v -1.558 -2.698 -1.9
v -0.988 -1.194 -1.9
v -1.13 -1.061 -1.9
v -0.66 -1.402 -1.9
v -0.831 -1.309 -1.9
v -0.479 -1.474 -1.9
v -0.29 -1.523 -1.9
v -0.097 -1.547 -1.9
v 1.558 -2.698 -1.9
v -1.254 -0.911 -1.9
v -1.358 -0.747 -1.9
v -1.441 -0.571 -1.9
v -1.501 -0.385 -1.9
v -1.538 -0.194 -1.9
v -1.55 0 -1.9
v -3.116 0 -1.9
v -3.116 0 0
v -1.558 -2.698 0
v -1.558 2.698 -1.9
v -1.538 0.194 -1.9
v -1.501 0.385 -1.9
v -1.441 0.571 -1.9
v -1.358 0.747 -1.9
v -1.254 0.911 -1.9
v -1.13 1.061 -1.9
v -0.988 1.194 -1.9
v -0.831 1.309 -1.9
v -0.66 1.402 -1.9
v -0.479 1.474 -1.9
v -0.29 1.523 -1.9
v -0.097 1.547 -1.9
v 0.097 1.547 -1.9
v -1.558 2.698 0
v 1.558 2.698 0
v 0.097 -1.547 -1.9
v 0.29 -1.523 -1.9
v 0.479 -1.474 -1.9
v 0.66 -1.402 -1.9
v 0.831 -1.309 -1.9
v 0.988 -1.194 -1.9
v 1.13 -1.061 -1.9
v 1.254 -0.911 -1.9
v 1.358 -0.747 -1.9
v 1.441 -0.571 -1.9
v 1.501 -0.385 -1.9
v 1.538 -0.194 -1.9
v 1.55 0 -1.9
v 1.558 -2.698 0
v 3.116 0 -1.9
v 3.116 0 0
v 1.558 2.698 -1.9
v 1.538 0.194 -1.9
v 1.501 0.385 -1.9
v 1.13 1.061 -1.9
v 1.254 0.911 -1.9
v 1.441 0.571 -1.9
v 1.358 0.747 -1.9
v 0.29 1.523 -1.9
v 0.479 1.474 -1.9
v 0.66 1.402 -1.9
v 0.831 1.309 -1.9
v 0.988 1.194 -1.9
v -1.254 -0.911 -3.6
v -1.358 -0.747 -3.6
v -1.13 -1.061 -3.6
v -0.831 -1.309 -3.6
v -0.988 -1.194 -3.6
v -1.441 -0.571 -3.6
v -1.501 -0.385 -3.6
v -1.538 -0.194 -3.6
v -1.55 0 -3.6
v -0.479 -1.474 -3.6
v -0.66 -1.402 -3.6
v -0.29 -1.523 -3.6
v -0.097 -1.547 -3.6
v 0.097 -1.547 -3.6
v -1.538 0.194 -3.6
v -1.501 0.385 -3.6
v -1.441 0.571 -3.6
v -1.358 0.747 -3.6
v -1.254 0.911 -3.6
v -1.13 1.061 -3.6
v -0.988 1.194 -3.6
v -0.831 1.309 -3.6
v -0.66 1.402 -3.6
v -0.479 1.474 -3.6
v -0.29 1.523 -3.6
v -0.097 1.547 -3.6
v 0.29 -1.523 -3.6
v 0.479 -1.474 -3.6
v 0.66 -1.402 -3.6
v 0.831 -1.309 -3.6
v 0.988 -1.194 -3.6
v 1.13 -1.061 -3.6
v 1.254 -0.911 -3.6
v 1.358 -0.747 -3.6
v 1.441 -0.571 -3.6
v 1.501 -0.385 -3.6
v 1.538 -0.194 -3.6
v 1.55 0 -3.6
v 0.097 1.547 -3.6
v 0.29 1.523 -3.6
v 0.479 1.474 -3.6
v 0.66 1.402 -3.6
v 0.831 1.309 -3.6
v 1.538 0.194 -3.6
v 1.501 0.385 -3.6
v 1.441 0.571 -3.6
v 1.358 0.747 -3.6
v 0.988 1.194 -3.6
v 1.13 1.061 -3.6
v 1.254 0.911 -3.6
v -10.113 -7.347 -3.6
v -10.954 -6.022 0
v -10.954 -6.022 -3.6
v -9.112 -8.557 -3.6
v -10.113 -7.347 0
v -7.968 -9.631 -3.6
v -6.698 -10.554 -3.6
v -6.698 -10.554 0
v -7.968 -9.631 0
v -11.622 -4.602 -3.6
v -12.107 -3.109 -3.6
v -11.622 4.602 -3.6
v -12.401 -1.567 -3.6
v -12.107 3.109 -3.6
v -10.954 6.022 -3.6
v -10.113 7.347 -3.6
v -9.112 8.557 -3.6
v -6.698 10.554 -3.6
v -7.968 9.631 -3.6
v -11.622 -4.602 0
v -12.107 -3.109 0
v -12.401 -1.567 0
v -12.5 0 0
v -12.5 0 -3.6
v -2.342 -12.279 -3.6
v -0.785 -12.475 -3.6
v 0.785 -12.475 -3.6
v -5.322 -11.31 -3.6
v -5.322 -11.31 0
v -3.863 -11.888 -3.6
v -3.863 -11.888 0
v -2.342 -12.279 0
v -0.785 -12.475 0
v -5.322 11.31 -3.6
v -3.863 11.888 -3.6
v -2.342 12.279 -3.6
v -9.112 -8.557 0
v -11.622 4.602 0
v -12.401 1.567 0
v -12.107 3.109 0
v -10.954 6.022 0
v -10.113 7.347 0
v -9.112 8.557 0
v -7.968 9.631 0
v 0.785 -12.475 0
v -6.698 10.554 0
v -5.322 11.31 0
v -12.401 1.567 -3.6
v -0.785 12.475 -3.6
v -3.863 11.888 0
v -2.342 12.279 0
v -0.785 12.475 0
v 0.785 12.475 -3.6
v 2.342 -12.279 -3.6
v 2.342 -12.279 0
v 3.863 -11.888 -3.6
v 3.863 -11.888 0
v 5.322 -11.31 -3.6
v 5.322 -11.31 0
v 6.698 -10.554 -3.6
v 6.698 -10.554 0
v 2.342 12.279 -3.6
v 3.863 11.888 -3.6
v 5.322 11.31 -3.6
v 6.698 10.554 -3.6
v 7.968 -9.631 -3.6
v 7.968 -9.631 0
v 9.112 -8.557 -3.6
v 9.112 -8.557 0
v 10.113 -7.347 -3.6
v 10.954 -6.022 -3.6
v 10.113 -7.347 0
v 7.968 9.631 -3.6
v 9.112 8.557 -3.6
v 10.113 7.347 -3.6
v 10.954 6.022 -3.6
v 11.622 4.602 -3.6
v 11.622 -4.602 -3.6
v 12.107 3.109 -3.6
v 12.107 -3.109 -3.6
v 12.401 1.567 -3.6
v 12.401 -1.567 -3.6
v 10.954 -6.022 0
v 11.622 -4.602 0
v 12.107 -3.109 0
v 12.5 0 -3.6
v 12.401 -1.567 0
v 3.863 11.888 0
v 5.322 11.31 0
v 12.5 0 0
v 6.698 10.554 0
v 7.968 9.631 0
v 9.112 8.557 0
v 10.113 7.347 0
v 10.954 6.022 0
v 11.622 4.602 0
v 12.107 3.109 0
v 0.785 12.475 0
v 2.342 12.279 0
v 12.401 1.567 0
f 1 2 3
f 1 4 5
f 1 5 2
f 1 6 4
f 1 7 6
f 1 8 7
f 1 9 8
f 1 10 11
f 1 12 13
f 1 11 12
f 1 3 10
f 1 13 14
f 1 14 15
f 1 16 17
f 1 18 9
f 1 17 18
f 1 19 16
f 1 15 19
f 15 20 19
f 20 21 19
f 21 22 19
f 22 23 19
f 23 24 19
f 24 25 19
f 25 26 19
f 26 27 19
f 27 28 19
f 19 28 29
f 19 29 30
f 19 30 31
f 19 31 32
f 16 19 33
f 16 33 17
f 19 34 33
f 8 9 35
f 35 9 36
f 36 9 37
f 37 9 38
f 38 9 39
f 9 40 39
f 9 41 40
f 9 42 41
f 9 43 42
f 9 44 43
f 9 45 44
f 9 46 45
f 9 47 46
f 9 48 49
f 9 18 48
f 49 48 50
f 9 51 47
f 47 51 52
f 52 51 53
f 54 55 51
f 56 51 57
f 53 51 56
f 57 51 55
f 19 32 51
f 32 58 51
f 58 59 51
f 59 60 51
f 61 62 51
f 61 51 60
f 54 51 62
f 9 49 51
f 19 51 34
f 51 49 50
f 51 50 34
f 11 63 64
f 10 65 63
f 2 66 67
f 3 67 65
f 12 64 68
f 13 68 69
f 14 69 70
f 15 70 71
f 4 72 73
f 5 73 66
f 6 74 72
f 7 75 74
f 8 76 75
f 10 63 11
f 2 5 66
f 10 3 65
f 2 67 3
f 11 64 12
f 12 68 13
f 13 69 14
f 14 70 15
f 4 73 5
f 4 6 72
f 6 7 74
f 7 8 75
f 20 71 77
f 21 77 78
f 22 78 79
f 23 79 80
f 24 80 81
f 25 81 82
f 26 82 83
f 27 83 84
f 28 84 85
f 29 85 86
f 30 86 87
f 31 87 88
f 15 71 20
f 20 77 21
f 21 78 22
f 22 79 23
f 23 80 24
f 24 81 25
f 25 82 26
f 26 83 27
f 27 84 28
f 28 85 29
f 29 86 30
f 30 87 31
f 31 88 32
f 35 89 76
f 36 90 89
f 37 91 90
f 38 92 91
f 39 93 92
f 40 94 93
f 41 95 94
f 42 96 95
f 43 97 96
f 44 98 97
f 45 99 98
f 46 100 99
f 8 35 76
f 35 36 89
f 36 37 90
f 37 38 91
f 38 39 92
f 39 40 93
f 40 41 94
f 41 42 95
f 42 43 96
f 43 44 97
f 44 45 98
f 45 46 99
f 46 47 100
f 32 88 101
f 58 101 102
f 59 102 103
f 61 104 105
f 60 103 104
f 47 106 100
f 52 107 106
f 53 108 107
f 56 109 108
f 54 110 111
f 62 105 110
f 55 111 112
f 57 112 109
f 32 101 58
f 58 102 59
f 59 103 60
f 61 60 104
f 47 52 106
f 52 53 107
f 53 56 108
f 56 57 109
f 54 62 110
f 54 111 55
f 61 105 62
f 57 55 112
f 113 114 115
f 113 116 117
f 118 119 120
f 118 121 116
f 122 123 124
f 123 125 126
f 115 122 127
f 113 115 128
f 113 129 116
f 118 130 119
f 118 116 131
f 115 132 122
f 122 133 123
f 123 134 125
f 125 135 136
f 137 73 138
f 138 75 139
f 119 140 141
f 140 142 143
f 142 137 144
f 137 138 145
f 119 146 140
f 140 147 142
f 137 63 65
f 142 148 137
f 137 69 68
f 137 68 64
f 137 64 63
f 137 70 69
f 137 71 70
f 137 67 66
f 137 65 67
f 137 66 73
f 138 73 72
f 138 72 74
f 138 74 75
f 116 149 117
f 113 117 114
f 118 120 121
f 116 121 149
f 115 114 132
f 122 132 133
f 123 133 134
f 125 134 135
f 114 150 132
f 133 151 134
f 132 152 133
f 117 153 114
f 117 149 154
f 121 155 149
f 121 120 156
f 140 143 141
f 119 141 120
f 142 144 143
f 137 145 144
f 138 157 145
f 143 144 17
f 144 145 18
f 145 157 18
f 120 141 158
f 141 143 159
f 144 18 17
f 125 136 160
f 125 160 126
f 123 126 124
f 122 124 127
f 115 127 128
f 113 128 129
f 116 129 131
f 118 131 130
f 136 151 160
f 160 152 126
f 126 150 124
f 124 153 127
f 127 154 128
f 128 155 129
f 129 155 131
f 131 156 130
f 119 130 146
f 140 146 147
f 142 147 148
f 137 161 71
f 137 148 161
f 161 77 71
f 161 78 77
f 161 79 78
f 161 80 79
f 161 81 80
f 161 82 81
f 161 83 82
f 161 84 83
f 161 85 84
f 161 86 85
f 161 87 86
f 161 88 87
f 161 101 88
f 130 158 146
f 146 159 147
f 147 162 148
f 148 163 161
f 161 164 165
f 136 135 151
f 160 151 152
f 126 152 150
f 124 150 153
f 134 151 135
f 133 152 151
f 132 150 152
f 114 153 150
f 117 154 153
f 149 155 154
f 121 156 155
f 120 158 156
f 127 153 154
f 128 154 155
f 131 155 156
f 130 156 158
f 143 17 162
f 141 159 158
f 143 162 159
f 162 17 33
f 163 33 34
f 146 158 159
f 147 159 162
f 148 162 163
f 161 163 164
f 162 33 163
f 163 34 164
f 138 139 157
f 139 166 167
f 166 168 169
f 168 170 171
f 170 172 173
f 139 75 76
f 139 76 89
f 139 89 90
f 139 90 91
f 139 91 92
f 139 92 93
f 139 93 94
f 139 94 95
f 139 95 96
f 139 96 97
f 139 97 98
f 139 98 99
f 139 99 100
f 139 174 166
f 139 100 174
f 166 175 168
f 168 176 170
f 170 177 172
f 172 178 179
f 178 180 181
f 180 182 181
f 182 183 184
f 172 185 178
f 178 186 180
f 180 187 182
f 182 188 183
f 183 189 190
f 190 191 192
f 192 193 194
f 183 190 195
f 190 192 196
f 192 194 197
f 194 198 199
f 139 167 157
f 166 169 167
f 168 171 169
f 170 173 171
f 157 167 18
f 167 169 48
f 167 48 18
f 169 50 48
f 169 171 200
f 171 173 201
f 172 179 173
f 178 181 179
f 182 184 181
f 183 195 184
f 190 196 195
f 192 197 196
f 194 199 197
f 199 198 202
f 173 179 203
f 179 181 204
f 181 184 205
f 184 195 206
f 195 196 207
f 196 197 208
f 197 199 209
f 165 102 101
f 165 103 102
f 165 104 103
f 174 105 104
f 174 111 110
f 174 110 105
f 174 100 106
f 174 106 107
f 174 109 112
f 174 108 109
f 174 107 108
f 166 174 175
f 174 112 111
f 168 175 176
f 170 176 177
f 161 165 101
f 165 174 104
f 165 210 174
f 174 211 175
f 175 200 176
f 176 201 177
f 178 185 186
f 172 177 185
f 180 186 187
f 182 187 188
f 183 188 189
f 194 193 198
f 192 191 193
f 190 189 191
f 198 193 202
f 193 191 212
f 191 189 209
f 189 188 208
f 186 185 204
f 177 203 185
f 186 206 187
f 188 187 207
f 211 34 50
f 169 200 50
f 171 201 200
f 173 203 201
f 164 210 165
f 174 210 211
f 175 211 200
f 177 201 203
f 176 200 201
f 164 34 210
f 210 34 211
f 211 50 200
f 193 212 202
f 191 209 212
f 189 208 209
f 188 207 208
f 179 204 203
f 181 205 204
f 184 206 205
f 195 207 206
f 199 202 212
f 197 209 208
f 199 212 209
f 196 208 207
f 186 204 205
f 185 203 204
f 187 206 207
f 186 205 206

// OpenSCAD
$fn = 50;

difference() {
	union() {
		translate(v = [0, 0, -3.6]) {
			cylinder(h = 3.6, r = 12.5);
		}
	}
	union() {
		translate(v = [0, 0, 0]) {
			rotate(a = [0, 0, 0]) {
				difference() {
					union() {
						translate(v = [0, 0, -1.9]) {
							linear_extrude(height = 1.9) {
								polygon(points = [[3.1158, 0.0], [1.5579000000000005, 2.698361953111554], [-1.5578999999999994, 2.6983619531115544], [-3.1158, 3.815754496783323e-16], [-1.5579000000000014, -2.6983619531115535], [1.557899999999998, -2.6983619531115552]]);
							}
						}
					}
					union();
				}
			}
		}
		#translate(v = [0, 0, -100.0]) {
			cylinder(h = 200, r = 1.55);
		}
	}
}
